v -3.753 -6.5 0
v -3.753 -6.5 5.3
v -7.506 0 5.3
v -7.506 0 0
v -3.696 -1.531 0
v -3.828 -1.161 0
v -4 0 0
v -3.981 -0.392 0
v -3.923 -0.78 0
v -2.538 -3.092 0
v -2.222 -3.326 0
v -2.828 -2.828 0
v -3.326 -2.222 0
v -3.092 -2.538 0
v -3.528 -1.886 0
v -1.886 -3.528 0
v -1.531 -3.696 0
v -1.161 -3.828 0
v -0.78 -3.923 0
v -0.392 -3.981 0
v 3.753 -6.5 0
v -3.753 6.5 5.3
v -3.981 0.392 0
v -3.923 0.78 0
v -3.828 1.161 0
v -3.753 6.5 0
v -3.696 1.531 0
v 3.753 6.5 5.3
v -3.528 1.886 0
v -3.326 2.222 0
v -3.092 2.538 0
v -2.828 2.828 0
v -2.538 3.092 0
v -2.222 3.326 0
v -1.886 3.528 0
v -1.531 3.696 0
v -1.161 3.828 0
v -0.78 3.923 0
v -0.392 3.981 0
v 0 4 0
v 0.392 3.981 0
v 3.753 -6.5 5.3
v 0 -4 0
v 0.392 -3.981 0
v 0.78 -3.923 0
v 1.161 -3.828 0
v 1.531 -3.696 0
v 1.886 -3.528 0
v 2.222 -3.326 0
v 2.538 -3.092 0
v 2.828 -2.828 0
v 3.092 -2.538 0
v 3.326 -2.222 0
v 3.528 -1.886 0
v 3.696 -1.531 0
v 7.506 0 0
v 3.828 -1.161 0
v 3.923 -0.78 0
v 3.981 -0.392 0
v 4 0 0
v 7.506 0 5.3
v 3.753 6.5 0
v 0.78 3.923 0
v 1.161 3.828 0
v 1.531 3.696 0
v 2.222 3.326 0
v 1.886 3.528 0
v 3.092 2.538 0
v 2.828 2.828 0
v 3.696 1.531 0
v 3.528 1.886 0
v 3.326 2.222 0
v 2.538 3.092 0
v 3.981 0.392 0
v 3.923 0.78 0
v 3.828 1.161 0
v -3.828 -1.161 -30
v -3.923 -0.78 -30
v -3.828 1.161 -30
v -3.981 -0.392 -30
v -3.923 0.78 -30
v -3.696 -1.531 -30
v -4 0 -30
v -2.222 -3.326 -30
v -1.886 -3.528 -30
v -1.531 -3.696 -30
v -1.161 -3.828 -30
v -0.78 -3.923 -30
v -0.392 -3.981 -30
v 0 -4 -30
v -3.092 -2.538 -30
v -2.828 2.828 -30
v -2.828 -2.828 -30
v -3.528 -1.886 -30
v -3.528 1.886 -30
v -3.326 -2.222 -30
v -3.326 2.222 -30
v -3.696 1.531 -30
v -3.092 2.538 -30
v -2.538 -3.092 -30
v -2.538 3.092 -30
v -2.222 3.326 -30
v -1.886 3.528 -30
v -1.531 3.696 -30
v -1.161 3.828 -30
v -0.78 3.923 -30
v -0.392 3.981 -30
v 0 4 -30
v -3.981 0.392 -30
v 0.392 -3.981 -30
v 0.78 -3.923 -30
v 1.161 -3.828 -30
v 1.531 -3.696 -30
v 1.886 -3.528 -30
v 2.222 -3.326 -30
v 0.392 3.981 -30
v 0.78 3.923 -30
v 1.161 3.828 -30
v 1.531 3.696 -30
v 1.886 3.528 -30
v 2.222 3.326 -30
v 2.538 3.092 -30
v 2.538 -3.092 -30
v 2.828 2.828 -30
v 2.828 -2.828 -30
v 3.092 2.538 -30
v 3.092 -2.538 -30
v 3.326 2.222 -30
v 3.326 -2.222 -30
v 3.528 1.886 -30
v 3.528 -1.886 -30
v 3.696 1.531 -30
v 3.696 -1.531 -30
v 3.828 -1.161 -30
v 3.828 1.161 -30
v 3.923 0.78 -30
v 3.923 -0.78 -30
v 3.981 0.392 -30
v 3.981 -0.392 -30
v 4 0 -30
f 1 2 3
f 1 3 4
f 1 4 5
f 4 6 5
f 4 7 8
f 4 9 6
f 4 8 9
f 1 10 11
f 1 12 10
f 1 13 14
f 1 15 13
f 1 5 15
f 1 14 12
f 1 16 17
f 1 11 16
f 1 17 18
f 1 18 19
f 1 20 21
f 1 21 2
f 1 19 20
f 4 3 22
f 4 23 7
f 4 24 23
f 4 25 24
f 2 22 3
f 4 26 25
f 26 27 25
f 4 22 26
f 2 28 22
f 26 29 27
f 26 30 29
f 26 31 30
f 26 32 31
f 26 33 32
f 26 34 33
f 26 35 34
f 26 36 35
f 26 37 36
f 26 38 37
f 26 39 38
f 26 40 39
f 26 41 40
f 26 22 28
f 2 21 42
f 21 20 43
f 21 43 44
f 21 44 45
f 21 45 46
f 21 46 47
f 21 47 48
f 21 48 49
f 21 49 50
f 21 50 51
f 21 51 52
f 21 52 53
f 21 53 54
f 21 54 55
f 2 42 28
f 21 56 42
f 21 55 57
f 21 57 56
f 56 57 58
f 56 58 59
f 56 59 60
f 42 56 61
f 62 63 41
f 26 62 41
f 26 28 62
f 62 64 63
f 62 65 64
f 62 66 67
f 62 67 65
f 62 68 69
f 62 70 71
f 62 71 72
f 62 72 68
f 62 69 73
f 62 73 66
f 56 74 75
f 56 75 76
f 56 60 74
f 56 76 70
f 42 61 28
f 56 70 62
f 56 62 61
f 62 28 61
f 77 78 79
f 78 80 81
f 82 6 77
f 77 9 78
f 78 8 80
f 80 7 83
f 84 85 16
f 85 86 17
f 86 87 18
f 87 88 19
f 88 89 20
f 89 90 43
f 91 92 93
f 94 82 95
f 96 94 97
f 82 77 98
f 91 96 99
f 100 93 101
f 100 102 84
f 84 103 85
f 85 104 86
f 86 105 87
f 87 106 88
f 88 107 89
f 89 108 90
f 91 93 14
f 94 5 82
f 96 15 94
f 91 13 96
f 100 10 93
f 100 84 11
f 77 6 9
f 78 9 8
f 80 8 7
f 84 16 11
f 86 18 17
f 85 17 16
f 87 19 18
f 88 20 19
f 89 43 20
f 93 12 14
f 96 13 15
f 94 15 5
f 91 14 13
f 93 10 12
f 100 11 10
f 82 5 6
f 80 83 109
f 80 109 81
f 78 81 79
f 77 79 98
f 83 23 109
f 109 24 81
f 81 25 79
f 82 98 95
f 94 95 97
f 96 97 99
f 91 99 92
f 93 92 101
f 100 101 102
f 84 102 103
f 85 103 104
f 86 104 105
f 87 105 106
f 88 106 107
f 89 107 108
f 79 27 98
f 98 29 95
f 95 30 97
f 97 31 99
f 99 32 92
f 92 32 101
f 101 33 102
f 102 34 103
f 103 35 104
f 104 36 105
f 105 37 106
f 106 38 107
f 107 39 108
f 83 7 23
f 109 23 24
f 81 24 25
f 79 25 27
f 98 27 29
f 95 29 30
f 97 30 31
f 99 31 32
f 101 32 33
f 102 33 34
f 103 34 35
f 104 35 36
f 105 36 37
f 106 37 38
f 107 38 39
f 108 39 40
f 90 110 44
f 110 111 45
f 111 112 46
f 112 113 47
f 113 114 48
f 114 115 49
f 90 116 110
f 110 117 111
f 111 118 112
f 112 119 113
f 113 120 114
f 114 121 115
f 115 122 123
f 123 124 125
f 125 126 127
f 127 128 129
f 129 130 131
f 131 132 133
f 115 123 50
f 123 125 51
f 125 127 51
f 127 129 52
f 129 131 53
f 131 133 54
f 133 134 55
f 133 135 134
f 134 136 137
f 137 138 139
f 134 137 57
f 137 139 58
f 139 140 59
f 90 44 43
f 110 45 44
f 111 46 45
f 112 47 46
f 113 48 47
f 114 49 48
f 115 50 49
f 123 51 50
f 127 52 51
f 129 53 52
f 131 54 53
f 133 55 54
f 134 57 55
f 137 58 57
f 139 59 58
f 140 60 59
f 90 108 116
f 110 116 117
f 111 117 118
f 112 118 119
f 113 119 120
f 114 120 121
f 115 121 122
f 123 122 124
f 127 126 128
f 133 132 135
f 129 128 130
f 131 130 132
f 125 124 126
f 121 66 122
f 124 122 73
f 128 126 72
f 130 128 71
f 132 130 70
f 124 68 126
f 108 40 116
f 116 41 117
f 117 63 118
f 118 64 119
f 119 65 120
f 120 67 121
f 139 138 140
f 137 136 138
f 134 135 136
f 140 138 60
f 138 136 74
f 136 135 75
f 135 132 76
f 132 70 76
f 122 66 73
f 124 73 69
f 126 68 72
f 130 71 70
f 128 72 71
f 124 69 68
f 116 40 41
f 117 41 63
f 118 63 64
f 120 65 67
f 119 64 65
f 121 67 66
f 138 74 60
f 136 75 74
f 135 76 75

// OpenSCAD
head_across_flats = 13;
head_height = 5.3;
shank_diameter = 8;
shank_length = 30;

head_radius = head_across_flats / sqrt(3);

union() {
    linear_extrude(height = head_height)
        polygon([
            for (i = [0:5])
                [head_radius * cos(i * 60),
                 head_radius * sin(i * 60)]
        ]);

    translate([0, 0, -shank_length])
        cylinder(h = shank_length, d = shank_diameter, $fn = 64);
}
